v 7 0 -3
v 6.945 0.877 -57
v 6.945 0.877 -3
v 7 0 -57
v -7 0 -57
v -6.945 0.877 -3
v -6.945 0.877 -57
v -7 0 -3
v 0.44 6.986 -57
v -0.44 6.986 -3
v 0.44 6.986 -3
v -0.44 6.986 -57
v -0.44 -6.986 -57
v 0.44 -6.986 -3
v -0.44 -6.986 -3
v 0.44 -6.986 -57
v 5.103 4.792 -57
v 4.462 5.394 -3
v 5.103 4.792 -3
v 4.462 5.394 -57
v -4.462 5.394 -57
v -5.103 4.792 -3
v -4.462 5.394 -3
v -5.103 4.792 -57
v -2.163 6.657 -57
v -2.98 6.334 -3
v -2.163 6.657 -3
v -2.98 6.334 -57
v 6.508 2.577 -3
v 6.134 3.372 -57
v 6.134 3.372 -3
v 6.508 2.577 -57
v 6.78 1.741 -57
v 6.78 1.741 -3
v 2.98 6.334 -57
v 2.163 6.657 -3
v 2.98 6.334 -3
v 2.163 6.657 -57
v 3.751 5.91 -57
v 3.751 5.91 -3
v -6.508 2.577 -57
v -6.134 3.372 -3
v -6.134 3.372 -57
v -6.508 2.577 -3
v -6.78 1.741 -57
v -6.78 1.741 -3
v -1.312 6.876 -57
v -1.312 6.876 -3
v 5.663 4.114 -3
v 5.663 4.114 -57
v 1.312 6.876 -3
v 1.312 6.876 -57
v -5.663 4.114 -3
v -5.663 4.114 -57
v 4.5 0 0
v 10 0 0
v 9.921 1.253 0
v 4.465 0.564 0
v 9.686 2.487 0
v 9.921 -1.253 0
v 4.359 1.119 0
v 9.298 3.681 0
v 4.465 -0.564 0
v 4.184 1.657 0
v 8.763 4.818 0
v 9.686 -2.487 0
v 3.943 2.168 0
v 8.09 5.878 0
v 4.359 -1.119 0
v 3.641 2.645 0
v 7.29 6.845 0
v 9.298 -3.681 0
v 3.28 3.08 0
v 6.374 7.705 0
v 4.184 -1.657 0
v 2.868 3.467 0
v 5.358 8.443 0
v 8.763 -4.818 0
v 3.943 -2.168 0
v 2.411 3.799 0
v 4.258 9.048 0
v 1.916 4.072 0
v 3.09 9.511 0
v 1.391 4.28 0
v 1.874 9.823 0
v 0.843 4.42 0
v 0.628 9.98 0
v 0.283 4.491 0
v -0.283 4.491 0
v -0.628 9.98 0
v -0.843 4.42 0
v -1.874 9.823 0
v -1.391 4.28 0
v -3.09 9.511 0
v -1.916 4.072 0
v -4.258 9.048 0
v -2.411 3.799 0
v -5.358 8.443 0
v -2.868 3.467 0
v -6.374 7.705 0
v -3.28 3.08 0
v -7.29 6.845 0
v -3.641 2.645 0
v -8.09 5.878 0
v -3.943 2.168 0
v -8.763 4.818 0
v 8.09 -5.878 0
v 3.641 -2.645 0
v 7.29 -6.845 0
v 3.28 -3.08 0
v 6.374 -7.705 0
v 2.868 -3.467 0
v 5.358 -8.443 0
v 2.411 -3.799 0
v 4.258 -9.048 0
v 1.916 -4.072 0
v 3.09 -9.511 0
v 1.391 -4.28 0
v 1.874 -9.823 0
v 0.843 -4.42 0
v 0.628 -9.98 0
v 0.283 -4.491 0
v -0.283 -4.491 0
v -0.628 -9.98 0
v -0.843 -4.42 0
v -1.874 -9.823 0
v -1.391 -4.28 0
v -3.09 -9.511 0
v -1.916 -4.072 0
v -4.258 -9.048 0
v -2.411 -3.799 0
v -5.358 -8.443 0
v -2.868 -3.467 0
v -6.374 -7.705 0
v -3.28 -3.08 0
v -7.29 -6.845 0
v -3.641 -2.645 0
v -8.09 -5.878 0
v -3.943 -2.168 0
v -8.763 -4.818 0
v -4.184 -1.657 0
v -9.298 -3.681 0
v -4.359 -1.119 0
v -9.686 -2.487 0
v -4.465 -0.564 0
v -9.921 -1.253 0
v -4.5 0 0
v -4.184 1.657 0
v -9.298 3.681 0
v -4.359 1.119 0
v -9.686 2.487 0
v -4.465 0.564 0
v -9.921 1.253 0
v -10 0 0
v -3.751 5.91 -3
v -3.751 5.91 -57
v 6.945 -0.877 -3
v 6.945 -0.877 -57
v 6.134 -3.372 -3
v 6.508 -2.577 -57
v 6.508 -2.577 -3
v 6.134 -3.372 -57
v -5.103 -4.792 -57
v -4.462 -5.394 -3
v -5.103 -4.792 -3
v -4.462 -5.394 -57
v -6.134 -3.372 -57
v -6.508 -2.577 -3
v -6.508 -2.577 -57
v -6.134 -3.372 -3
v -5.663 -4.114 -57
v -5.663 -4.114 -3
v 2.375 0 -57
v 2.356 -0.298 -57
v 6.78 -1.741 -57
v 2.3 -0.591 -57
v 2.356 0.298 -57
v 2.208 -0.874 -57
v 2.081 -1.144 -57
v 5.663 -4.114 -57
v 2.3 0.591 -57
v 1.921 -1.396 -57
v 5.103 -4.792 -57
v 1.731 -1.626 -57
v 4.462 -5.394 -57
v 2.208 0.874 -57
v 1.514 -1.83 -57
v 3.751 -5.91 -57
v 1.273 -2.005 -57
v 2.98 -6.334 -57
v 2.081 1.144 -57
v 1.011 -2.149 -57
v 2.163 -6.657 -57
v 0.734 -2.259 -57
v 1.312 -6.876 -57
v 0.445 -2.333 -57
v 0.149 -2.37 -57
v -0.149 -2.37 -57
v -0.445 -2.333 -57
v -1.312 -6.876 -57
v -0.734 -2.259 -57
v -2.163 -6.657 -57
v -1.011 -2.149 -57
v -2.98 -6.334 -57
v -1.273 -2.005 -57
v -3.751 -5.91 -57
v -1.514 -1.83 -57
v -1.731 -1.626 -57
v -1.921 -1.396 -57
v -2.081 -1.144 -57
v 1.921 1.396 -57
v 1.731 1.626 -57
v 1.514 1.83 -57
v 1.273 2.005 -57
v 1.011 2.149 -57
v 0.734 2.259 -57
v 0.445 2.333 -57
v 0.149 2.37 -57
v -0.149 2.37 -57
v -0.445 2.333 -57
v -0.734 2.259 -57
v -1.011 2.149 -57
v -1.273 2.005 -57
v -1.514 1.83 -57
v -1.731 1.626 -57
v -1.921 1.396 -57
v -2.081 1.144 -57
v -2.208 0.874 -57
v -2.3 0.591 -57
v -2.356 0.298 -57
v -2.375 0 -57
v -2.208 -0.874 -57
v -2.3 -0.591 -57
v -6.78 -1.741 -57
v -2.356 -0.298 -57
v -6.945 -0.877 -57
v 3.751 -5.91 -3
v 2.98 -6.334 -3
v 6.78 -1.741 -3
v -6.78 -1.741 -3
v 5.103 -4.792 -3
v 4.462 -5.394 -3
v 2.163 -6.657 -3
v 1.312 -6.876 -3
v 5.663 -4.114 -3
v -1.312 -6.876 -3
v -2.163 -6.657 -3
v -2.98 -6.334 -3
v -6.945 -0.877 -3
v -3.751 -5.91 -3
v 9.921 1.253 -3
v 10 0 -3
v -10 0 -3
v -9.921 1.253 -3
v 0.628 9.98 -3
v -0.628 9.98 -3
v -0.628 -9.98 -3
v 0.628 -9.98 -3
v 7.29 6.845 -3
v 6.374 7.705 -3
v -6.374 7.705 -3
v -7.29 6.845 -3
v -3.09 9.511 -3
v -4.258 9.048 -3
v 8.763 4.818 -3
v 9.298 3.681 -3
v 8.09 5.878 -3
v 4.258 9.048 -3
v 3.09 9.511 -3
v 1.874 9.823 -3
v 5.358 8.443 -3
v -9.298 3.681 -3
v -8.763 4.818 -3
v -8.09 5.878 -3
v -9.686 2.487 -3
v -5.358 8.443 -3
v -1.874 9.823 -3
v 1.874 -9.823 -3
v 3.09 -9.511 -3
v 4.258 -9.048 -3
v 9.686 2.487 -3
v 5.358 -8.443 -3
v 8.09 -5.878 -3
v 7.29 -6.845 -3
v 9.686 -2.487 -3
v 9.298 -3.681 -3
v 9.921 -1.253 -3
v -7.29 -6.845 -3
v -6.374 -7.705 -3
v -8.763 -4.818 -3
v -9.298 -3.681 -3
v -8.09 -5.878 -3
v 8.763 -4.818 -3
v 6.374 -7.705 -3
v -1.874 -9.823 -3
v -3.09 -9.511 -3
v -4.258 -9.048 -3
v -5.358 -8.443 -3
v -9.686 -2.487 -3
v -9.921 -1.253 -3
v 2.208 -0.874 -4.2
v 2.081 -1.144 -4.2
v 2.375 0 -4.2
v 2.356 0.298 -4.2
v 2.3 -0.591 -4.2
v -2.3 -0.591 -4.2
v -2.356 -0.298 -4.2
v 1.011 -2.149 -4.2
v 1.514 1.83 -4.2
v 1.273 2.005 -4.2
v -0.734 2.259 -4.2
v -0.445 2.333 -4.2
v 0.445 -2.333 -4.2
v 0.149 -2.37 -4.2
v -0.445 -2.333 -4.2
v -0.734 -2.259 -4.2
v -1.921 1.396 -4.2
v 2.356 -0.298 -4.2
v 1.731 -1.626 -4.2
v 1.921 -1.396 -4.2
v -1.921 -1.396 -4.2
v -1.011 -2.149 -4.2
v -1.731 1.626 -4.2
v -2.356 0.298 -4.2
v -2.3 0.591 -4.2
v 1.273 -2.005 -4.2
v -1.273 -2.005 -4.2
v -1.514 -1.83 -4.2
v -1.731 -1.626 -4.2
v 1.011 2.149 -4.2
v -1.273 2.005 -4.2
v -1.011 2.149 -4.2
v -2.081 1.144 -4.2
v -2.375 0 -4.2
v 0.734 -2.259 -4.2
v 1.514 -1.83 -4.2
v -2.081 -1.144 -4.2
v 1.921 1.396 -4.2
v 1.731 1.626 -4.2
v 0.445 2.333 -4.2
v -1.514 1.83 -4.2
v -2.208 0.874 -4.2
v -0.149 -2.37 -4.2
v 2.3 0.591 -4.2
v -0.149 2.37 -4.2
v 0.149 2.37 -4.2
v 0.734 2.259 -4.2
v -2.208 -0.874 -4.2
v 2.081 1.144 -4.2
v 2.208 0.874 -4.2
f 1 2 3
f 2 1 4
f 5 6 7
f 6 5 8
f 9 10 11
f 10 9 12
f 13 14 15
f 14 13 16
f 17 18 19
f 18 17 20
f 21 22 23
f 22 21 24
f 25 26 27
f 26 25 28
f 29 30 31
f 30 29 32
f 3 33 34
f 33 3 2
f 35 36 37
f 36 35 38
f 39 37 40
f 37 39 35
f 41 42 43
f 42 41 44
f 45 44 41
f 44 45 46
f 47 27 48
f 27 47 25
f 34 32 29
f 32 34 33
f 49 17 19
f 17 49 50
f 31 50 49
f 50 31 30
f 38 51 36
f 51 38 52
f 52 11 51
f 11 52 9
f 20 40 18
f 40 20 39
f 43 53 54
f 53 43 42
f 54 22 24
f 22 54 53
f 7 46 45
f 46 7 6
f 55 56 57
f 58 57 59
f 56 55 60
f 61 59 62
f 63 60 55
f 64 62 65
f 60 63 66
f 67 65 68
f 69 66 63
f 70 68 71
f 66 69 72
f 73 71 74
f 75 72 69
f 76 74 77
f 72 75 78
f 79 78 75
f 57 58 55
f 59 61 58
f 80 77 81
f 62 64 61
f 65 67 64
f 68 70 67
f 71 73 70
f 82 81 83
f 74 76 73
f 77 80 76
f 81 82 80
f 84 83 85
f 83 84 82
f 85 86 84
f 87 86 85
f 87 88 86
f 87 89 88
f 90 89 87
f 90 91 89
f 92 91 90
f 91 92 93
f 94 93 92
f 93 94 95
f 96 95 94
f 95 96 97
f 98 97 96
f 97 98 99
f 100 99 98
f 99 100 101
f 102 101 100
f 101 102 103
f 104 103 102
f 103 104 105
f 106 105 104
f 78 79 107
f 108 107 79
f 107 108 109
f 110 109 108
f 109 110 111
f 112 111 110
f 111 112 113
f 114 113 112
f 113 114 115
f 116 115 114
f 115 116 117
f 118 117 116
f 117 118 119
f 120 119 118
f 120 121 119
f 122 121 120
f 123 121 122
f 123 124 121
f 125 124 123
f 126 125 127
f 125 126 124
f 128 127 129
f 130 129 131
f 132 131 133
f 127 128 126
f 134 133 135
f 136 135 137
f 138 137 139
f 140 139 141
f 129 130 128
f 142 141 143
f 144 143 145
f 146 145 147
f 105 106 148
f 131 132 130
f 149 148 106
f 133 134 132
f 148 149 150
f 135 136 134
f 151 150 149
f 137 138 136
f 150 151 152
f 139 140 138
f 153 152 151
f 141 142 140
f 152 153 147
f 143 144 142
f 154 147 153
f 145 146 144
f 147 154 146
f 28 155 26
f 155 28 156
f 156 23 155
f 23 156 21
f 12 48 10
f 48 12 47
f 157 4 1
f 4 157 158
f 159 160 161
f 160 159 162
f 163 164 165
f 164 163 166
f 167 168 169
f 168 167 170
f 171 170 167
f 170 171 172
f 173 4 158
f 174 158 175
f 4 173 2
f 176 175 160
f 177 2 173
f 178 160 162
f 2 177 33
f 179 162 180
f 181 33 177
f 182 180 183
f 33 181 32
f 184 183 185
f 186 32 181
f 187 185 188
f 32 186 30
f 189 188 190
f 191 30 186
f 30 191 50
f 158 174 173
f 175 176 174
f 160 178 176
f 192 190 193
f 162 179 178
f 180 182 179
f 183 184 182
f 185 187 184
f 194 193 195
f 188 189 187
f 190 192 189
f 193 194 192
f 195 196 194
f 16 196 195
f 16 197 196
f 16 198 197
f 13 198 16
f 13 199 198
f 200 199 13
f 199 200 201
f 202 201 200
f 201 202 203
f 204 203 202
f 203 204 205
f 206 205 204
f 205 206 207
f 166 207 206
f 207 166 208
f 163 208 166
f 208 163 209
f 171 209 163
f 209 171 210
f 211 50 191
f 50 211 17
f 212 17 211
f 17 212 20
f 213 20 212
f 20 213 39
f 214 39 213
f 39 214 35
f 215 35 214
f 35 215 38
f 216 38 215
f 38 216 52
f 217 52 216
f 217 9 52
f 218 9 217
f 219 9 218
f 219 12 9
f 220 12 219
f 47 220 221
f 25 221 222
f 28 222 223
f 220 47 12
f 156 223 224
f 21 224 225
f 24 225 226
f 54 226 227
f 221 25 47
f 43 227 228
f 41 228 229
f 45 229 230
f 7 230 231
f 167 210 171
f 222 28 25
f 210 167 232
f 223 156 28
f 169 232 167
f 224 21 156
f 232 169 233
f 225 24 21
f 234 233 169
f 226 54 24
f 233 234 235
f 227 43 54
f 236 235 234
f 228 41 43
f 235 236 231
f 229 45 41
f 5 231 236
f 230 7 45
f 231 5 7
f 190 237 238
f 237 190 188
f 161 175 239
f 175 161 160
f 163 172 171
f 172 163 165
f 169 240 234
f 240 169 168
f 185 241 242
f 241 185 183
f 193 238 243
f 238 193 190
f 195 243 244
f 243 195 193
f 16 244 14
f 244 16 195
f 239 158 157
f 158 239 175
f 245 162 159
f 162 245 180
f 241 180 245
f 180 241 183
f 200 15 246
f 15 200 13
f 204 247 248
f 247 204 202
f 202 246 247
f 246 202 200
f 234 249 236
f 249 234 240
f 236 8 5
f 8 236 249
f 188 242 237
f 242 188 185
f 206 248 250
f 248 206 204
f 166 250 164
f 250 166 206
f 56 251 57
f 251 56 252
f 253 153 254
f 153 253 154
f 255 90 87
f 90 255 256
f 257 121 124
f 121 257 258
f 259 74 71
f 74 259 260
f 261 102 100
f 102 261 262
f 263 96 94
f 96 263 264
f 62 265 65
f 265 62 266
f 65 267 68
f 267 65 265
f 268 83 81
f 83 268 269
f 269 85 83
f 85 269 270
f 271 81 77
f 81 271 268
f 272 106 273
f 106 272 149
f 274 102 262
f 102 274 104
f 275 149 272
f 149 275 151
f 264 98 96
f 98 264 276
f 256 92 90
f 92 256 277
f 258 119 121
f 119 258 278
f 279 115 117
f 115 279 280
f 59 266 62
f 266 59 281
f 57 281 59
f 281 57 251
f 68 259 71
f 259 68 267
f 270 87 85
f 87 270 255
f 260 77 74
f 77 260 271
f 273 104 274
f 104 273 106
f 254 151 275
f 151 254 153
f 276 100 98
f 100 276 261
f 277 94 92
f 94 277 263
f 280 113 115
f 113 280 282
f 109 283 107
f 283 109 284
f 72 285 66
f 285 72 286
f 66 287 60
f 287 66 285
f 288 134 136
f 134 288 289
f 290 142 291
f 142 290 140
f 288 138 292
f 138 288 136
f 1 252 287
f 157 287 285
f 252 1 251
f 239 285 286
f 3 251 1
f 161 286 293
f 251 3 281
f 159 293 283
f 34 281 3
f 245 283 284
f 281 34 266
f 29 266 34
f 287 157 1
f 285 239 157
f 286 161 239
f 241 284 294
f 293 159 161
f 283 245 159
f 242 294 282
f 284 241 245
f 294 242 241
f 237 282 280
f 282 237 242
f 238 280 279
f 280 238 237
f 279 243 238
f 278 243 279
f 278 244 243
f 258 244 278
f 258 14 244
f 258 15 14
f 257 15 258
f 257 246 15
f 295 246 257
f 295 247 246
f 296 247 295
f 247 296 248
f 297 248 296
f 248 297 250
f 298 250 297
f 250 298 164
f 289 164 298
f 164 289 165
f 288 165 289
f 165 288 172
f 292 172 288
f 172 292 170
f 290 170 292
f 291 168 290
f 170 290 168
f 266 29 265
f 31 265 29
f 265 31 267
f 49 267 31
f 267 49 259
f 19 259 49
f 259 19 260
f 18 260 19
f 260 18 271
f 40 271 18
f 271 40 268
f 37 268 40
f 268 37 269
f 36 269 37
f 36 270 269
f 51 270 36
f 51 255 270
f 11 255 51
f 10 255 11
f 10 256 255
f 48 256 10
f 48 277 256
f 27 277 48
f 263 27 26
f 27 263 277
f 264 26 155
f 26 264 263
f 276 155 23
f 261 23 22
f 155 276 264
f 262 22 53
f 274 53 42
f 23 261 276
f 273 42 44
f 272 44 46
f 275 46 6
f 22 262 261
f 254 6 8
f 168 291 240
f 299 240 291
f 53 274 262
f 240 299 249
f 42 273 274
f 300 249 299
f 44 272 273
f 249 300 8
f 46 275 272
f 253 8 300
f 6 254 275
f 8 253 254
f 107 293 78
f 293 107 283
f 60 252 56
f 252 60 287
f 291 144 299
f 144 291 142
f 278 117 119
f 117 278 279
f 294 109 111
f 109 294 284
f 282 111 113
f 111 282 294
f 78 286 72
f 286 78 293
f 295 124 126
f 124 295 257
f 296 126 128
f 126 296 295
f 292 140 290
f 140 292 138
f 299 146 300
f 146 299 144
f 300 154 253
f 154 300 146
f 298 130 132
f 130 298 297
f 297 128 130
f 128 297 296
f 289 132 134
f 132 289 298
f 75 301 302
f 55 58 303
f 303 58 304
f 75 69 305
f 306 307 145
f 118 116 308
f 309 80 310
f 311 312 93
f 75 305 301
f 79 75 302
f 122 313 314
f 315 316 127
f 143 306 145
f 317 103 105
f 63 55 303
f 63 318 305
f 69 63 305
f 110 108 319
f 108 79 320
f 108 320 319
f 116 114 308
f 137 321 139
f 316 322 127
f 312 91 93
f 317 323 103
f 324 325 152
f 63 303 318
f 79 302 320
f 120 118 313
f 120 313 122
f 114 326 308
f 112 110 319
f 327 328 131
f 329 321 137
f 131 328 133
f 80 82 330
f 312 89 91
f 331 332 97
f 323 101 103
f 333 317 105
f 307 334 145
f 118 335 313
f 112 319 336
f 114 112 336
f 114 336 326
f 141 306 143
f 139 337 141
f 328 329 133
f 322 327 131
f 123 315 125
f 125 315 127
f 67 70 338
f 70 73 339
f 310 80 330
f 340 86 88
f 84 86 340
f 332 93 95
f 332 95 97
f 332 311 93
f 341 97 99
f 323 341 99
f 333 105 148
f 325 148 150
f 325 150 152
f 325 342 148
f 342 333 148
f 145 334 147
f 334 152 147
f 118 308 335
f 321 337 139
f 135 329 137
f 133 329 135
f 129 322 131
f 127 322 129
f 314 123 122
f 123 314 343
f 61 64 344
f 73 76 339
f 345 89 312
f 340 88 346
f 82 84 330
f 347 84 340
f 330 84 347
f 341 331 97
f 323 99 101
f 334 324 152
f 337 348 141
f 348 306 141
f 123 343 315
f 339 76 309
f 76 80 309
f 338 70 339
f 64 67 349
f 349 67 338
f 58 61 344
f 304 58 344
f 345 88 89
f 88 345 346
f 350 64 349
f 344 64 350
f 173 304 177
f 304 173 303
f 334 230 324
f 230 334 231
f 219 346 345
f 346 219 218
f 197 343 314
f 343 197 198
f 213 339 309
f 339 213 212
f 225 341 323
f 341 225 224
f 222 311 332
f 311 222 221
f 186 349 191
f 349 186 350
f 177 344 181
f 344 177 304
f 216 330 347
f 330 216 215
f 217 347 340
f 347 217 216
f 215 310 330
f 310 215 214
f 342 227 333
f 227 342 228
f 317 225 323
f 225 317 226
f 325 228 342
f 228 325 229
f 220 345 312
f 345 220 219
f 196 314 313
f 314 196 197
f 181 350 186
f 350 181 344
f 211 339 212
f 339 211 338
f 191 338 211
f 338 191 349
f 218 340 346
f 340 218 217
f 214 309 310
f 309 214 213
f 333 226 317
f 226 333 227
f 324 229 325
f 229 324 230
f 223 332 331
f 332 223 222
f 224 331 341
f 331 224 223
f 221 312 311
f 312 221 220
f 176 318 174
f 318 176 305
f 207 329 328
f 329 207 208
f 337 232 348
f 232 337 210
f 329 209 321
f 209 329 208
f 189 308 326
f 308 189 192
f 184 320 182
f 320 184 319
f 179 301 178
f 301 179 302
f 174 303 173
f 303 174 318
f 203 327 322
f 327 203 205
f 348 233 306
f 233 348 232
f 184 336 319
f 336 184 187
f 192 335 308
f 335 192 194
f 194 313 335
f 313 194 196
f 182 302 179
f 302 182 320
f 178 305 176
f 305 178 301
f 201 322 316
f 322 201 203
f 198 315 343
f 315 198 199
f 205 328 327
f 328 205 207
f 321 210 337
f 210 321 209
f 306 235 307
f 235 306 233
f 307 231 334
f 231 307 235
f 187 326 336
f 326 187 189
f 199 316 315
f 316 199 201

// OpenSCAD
$fn = 50;


difference() {
	union() {
		translate(v = [0, 0, -57.0000000000]) {
			cylinder(h = 57, r = 7.0000000000);
		}
		translate(v = [0, 0, -3.0000000000]) {
			cylinder(h = 3, r = 10.0000000000);
		}
	}
	union() {
		translate(v = [0, 0, 0]) {
			rotate(a = [0, 0, 0]) {
				difference() {
					union() {
						#translate(v = [0, 0, -57.0000000000]) {
							cylinder(h = 57, r = 2.2500000000);
						}
						#translate(v = [0, 0, -4.2000000000]) {
							cylinder(h = 4.2000000000, r = 7.0000000000, r1 = 2.3750000000, r2 = 4.5000000000);
						}
						#translate(v = [0, 0, -57.0000000000]) {
							cylinder(h = 57, r = 2.3750000000);
						}
						#translate(v = [0, 0, -57.0000000000]) {
							cylinder(h = 57, r = 2.2500000000);
						}
					}
					union();
				}
			}
		}
	}
}
